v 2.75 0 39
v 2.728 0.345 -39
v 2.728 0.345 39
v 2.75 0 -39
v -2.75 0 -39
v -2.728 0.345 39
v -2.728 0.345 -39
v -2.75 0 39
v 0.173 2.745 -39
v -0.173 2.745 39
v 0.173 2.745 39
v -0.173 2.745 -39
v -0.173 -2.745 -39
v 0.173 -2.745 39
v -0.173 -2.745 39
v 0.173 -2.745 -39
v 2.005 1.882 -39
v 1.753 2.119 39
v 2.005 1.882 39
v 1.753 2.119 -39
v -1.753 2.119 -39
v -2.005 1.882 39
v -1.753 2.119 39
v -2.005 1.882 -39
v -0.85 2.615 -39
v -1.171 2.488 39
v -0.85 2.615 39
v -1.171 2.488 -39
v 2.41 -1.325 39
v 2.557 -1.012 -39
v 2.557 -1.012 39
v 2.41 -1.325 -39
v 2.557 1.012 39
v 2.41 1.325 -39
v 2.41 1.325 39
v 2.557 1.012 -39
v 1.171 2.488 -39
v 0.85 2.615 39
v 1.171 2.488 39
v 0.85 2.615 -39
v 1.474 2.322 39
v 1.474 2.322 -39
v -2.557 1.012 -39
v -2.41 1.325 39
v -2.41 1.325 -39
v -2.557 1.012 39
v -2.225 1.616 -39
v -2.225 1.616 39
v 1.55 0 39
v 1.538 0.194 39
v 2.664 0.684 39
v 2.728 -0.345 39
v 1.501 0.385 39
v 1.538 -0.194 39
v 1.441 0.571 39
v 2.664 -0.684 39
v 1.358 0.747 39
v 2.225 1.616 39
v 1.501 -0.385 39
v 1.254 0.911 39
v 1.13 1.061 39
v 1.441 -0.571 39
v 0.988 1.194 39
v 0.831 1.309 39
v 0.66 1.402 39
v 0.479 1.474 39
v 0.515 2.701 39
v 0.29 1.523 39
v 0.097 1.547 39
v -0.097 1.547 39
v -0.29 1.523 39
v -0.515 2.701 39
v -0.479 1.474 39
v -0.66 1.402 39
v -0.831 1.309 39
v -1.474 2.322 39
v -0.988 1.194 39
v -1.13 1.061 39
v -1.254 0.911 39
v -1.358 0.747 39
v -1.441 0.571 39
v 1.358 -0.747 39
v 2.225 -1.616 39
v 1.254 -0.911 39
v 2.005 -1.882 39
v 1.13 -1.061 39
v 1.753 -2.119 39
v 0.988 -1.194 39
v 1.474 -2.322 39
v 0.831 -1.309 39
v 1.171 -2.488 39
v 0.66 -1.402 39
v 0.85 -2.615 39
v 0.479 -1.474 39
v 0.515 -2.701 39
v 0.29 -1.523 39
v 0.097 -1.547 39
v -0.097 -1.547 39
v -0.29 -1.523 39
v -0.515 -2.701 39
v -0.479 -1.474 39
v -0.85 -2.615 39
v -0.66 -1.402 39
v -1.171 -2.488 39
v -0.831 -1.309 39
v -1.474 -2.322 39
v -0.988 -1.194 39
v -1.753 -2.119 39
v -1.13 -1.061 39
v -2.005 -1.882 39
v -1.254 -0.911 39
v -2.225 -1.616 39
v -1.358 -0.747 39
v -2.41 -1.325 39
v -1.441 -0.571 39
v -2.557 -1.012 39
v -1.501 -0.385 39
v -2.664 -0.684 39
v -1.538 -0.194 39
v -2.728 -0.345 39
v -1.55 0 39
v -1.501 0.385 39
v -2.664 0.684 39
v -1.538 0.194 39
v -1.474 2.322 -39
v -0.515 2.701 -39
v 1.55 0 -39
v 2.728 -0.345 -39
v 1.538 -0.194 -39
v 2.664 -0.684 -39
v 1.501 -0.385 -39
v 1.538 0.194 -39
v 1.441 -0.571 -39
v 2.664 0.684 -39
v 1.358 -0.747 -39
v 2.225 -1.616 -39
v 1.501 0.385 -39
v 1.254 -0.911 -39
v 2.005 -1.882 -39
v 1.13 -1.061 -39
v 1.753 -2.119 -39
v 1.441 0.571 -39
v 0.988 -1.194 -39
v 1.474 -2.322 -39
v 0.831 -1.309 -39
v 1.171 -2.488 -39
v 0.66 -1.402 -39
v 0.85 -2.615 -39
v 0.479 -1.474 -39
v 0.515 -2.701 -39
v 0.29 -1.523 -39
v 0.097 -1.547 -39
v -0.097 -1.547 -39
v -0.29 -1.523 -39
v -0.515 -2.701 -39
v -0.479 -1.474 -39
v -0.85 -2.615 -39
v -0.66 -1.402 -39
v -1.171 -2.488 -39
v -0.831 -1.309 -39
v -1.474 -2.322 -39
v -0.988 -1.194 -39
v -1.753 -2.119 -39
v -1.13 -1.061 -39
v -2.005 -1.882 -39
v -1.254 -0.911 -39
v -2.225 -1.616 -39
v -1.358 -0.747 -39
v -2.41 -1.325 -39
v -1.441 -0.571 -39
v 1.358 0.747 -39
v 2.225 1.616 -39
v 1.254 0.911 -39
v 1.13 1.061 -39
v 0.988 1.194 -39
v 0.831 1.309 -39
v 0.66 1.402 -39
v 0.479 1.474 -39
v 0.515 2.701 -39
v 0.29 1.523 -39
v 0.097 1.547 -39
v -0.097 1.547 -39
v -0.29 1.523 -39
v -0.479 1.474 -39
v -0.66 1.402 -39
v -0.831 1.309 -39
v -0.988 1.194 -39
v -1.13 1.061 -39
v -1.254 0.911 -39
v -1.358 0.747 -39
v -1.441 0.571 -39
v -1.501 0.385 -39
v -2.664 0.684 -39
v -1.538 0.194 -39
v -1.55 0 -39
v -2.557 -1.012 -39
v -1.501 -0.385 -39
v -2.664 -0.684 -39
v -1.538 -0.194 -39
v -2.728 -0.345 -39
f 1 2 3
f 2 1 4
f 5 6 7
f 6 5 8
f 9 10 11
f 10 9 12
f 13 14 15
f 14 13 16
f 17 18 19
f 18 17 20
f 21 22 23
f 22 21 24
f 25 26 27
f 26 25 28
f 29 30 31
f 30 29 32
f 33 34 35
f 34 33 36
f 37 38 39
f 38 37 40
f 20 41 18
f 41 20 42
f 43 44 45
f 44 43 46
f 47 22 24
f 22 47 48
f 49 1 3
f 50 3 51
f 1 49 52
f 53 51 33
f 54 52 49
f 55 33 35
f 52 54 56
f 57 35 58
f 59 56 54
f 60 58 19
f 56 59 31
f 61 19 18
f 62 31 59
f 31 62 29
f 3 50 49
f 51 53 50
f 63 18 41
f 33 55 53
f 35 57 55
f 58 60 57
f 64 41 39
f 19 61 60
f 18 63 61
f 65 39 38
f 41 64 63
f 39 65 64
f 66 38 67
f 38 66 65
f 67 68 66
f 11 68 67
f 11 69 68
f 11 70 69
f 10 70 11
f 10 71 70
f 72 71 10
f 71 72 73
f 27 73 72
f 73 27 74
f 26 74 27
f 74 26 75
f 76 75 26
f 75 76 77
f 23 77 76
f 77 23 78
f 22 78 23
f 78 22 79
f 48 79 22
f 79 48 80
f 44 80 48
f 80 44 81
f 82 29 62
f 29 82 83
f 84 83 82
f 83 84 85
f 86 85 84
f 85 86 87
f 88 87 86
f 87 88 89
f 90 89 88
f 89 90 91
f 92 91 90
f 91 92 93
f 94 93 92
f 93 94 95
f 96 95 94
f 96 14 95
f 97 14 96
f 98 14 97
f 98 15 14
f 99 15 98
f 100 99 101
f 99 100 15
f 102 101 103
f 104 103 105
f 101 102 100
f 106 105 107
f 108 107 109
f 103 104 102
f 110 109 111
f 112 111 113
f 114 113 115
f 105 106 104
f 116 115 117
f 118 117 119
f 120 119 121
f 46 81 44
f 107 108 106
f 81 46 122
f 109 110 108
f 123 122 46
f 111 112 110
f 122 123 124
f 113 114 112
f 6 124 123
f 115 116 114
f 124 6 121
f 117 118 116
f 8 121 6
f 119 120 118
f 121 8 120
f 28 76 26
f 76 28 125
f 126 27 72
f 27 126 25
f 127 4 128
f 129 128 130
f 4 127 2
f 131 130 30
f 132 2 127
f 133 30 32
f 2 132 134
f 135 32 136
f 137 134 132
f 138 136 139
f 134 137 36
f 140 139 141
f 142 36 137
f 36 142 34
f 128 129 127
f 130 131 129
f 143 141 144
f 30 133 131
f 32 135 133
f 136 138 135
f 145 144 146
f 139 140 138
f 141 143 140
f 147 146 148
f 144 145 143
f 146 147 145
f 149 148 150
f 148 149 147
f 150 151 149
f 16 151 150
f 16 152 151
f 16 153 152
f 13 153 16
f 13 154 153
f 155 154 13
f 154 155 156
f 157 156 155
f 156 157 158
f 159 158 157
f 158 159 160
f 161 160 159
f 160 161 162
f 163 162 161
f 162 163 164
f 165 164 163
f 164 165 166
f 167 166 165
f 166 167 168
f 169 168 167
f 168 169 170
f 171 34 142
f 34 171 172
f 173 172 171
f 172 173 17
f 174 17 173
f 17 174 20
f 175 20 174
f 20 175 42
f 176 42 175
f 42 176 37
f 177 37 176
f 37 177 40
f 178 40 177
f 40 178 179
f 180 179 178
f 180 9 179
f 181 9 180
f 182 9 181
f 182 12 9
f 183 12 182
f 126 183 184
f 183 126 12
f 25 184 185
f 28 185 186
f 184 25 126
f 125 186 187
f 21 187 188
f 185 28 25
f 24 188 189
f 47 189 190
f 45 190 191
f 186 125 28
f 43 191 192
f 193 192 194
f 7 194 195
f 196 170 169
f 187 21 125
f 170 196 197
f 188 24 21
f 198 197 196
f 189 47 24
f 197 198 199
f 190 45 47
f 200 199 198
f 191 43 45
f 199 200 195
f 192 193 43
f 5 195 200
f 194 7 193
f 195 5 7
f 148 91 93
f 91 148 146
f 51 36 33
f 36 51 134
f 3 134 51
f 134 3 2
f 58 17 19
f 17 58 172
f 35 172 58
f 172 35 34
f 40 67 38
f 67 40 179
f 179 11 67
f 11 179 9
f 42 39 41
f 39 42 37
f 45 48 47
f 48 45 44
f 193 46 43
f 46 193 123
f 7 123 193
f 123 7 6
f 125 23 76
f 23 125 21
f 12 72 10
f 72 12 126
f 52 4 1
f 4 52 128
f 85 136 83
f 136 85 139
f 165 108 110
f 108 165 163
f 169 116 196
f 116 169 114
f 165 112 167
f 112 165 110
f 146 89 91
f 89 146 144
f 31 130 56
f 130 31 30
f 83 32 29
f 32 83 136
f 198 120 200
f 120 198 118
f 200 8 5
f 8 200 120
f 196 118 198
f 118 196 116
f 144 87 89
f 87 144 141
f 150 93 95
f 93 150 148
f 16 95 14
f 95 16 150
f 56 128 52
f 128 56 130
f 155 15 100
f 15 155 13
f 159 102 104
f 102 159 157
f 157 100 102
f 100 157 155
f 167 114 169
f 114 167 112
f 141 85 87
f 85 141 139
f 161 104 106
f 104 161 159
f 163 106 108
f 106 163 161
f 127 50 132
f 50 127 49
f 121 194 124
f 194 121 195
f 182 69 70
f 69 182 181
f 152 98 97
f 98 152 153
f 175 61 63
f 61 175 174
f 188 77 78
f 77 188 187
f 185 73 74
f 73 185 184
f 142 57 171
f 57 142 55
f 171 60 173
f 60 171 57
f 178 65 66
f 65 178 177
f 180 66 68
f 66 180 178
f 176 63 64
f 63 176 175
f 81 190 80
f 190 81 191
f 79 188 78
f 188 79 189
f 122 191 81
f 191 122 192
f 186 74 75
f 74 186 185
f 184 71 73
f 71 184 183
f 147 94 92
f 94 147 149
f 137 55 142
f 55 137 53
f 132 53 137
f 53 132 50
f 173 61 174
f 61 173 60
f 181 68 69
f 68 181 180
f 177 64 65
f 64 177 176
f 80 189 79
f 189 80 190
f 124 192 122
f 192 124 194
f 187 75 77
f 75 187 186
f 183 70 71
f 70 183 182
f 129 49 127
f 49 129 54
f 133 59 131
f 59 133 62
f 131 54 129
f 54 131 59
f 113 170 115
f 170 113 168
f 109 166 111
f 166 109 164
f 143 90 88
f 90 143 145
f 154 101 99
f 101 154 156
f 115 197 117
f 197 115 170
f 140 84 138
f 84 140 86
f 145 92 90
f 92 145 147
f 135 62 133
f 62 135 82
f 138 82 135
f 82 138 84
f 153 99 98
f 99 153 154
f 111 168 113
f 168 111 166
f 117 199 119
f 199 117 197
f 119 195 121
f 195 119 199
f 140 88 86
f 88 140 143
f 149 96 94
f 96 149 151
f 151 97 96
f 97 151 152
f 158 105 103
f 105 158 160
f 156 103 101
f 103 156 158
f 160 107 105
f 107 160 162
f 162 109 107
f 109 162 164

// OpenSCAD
$fn = 50;


difference() {
	union() {
		translate(v = [0, 0, -39.0000000000]) {
			cylinder(h = 78, r = 2.7500000000);
		}
	}
	union() {
		translate(v = [0, 0, -100.0000000000]) {
			cylinder(h = 200, r = 1.5500000000);
		}
	}
}
